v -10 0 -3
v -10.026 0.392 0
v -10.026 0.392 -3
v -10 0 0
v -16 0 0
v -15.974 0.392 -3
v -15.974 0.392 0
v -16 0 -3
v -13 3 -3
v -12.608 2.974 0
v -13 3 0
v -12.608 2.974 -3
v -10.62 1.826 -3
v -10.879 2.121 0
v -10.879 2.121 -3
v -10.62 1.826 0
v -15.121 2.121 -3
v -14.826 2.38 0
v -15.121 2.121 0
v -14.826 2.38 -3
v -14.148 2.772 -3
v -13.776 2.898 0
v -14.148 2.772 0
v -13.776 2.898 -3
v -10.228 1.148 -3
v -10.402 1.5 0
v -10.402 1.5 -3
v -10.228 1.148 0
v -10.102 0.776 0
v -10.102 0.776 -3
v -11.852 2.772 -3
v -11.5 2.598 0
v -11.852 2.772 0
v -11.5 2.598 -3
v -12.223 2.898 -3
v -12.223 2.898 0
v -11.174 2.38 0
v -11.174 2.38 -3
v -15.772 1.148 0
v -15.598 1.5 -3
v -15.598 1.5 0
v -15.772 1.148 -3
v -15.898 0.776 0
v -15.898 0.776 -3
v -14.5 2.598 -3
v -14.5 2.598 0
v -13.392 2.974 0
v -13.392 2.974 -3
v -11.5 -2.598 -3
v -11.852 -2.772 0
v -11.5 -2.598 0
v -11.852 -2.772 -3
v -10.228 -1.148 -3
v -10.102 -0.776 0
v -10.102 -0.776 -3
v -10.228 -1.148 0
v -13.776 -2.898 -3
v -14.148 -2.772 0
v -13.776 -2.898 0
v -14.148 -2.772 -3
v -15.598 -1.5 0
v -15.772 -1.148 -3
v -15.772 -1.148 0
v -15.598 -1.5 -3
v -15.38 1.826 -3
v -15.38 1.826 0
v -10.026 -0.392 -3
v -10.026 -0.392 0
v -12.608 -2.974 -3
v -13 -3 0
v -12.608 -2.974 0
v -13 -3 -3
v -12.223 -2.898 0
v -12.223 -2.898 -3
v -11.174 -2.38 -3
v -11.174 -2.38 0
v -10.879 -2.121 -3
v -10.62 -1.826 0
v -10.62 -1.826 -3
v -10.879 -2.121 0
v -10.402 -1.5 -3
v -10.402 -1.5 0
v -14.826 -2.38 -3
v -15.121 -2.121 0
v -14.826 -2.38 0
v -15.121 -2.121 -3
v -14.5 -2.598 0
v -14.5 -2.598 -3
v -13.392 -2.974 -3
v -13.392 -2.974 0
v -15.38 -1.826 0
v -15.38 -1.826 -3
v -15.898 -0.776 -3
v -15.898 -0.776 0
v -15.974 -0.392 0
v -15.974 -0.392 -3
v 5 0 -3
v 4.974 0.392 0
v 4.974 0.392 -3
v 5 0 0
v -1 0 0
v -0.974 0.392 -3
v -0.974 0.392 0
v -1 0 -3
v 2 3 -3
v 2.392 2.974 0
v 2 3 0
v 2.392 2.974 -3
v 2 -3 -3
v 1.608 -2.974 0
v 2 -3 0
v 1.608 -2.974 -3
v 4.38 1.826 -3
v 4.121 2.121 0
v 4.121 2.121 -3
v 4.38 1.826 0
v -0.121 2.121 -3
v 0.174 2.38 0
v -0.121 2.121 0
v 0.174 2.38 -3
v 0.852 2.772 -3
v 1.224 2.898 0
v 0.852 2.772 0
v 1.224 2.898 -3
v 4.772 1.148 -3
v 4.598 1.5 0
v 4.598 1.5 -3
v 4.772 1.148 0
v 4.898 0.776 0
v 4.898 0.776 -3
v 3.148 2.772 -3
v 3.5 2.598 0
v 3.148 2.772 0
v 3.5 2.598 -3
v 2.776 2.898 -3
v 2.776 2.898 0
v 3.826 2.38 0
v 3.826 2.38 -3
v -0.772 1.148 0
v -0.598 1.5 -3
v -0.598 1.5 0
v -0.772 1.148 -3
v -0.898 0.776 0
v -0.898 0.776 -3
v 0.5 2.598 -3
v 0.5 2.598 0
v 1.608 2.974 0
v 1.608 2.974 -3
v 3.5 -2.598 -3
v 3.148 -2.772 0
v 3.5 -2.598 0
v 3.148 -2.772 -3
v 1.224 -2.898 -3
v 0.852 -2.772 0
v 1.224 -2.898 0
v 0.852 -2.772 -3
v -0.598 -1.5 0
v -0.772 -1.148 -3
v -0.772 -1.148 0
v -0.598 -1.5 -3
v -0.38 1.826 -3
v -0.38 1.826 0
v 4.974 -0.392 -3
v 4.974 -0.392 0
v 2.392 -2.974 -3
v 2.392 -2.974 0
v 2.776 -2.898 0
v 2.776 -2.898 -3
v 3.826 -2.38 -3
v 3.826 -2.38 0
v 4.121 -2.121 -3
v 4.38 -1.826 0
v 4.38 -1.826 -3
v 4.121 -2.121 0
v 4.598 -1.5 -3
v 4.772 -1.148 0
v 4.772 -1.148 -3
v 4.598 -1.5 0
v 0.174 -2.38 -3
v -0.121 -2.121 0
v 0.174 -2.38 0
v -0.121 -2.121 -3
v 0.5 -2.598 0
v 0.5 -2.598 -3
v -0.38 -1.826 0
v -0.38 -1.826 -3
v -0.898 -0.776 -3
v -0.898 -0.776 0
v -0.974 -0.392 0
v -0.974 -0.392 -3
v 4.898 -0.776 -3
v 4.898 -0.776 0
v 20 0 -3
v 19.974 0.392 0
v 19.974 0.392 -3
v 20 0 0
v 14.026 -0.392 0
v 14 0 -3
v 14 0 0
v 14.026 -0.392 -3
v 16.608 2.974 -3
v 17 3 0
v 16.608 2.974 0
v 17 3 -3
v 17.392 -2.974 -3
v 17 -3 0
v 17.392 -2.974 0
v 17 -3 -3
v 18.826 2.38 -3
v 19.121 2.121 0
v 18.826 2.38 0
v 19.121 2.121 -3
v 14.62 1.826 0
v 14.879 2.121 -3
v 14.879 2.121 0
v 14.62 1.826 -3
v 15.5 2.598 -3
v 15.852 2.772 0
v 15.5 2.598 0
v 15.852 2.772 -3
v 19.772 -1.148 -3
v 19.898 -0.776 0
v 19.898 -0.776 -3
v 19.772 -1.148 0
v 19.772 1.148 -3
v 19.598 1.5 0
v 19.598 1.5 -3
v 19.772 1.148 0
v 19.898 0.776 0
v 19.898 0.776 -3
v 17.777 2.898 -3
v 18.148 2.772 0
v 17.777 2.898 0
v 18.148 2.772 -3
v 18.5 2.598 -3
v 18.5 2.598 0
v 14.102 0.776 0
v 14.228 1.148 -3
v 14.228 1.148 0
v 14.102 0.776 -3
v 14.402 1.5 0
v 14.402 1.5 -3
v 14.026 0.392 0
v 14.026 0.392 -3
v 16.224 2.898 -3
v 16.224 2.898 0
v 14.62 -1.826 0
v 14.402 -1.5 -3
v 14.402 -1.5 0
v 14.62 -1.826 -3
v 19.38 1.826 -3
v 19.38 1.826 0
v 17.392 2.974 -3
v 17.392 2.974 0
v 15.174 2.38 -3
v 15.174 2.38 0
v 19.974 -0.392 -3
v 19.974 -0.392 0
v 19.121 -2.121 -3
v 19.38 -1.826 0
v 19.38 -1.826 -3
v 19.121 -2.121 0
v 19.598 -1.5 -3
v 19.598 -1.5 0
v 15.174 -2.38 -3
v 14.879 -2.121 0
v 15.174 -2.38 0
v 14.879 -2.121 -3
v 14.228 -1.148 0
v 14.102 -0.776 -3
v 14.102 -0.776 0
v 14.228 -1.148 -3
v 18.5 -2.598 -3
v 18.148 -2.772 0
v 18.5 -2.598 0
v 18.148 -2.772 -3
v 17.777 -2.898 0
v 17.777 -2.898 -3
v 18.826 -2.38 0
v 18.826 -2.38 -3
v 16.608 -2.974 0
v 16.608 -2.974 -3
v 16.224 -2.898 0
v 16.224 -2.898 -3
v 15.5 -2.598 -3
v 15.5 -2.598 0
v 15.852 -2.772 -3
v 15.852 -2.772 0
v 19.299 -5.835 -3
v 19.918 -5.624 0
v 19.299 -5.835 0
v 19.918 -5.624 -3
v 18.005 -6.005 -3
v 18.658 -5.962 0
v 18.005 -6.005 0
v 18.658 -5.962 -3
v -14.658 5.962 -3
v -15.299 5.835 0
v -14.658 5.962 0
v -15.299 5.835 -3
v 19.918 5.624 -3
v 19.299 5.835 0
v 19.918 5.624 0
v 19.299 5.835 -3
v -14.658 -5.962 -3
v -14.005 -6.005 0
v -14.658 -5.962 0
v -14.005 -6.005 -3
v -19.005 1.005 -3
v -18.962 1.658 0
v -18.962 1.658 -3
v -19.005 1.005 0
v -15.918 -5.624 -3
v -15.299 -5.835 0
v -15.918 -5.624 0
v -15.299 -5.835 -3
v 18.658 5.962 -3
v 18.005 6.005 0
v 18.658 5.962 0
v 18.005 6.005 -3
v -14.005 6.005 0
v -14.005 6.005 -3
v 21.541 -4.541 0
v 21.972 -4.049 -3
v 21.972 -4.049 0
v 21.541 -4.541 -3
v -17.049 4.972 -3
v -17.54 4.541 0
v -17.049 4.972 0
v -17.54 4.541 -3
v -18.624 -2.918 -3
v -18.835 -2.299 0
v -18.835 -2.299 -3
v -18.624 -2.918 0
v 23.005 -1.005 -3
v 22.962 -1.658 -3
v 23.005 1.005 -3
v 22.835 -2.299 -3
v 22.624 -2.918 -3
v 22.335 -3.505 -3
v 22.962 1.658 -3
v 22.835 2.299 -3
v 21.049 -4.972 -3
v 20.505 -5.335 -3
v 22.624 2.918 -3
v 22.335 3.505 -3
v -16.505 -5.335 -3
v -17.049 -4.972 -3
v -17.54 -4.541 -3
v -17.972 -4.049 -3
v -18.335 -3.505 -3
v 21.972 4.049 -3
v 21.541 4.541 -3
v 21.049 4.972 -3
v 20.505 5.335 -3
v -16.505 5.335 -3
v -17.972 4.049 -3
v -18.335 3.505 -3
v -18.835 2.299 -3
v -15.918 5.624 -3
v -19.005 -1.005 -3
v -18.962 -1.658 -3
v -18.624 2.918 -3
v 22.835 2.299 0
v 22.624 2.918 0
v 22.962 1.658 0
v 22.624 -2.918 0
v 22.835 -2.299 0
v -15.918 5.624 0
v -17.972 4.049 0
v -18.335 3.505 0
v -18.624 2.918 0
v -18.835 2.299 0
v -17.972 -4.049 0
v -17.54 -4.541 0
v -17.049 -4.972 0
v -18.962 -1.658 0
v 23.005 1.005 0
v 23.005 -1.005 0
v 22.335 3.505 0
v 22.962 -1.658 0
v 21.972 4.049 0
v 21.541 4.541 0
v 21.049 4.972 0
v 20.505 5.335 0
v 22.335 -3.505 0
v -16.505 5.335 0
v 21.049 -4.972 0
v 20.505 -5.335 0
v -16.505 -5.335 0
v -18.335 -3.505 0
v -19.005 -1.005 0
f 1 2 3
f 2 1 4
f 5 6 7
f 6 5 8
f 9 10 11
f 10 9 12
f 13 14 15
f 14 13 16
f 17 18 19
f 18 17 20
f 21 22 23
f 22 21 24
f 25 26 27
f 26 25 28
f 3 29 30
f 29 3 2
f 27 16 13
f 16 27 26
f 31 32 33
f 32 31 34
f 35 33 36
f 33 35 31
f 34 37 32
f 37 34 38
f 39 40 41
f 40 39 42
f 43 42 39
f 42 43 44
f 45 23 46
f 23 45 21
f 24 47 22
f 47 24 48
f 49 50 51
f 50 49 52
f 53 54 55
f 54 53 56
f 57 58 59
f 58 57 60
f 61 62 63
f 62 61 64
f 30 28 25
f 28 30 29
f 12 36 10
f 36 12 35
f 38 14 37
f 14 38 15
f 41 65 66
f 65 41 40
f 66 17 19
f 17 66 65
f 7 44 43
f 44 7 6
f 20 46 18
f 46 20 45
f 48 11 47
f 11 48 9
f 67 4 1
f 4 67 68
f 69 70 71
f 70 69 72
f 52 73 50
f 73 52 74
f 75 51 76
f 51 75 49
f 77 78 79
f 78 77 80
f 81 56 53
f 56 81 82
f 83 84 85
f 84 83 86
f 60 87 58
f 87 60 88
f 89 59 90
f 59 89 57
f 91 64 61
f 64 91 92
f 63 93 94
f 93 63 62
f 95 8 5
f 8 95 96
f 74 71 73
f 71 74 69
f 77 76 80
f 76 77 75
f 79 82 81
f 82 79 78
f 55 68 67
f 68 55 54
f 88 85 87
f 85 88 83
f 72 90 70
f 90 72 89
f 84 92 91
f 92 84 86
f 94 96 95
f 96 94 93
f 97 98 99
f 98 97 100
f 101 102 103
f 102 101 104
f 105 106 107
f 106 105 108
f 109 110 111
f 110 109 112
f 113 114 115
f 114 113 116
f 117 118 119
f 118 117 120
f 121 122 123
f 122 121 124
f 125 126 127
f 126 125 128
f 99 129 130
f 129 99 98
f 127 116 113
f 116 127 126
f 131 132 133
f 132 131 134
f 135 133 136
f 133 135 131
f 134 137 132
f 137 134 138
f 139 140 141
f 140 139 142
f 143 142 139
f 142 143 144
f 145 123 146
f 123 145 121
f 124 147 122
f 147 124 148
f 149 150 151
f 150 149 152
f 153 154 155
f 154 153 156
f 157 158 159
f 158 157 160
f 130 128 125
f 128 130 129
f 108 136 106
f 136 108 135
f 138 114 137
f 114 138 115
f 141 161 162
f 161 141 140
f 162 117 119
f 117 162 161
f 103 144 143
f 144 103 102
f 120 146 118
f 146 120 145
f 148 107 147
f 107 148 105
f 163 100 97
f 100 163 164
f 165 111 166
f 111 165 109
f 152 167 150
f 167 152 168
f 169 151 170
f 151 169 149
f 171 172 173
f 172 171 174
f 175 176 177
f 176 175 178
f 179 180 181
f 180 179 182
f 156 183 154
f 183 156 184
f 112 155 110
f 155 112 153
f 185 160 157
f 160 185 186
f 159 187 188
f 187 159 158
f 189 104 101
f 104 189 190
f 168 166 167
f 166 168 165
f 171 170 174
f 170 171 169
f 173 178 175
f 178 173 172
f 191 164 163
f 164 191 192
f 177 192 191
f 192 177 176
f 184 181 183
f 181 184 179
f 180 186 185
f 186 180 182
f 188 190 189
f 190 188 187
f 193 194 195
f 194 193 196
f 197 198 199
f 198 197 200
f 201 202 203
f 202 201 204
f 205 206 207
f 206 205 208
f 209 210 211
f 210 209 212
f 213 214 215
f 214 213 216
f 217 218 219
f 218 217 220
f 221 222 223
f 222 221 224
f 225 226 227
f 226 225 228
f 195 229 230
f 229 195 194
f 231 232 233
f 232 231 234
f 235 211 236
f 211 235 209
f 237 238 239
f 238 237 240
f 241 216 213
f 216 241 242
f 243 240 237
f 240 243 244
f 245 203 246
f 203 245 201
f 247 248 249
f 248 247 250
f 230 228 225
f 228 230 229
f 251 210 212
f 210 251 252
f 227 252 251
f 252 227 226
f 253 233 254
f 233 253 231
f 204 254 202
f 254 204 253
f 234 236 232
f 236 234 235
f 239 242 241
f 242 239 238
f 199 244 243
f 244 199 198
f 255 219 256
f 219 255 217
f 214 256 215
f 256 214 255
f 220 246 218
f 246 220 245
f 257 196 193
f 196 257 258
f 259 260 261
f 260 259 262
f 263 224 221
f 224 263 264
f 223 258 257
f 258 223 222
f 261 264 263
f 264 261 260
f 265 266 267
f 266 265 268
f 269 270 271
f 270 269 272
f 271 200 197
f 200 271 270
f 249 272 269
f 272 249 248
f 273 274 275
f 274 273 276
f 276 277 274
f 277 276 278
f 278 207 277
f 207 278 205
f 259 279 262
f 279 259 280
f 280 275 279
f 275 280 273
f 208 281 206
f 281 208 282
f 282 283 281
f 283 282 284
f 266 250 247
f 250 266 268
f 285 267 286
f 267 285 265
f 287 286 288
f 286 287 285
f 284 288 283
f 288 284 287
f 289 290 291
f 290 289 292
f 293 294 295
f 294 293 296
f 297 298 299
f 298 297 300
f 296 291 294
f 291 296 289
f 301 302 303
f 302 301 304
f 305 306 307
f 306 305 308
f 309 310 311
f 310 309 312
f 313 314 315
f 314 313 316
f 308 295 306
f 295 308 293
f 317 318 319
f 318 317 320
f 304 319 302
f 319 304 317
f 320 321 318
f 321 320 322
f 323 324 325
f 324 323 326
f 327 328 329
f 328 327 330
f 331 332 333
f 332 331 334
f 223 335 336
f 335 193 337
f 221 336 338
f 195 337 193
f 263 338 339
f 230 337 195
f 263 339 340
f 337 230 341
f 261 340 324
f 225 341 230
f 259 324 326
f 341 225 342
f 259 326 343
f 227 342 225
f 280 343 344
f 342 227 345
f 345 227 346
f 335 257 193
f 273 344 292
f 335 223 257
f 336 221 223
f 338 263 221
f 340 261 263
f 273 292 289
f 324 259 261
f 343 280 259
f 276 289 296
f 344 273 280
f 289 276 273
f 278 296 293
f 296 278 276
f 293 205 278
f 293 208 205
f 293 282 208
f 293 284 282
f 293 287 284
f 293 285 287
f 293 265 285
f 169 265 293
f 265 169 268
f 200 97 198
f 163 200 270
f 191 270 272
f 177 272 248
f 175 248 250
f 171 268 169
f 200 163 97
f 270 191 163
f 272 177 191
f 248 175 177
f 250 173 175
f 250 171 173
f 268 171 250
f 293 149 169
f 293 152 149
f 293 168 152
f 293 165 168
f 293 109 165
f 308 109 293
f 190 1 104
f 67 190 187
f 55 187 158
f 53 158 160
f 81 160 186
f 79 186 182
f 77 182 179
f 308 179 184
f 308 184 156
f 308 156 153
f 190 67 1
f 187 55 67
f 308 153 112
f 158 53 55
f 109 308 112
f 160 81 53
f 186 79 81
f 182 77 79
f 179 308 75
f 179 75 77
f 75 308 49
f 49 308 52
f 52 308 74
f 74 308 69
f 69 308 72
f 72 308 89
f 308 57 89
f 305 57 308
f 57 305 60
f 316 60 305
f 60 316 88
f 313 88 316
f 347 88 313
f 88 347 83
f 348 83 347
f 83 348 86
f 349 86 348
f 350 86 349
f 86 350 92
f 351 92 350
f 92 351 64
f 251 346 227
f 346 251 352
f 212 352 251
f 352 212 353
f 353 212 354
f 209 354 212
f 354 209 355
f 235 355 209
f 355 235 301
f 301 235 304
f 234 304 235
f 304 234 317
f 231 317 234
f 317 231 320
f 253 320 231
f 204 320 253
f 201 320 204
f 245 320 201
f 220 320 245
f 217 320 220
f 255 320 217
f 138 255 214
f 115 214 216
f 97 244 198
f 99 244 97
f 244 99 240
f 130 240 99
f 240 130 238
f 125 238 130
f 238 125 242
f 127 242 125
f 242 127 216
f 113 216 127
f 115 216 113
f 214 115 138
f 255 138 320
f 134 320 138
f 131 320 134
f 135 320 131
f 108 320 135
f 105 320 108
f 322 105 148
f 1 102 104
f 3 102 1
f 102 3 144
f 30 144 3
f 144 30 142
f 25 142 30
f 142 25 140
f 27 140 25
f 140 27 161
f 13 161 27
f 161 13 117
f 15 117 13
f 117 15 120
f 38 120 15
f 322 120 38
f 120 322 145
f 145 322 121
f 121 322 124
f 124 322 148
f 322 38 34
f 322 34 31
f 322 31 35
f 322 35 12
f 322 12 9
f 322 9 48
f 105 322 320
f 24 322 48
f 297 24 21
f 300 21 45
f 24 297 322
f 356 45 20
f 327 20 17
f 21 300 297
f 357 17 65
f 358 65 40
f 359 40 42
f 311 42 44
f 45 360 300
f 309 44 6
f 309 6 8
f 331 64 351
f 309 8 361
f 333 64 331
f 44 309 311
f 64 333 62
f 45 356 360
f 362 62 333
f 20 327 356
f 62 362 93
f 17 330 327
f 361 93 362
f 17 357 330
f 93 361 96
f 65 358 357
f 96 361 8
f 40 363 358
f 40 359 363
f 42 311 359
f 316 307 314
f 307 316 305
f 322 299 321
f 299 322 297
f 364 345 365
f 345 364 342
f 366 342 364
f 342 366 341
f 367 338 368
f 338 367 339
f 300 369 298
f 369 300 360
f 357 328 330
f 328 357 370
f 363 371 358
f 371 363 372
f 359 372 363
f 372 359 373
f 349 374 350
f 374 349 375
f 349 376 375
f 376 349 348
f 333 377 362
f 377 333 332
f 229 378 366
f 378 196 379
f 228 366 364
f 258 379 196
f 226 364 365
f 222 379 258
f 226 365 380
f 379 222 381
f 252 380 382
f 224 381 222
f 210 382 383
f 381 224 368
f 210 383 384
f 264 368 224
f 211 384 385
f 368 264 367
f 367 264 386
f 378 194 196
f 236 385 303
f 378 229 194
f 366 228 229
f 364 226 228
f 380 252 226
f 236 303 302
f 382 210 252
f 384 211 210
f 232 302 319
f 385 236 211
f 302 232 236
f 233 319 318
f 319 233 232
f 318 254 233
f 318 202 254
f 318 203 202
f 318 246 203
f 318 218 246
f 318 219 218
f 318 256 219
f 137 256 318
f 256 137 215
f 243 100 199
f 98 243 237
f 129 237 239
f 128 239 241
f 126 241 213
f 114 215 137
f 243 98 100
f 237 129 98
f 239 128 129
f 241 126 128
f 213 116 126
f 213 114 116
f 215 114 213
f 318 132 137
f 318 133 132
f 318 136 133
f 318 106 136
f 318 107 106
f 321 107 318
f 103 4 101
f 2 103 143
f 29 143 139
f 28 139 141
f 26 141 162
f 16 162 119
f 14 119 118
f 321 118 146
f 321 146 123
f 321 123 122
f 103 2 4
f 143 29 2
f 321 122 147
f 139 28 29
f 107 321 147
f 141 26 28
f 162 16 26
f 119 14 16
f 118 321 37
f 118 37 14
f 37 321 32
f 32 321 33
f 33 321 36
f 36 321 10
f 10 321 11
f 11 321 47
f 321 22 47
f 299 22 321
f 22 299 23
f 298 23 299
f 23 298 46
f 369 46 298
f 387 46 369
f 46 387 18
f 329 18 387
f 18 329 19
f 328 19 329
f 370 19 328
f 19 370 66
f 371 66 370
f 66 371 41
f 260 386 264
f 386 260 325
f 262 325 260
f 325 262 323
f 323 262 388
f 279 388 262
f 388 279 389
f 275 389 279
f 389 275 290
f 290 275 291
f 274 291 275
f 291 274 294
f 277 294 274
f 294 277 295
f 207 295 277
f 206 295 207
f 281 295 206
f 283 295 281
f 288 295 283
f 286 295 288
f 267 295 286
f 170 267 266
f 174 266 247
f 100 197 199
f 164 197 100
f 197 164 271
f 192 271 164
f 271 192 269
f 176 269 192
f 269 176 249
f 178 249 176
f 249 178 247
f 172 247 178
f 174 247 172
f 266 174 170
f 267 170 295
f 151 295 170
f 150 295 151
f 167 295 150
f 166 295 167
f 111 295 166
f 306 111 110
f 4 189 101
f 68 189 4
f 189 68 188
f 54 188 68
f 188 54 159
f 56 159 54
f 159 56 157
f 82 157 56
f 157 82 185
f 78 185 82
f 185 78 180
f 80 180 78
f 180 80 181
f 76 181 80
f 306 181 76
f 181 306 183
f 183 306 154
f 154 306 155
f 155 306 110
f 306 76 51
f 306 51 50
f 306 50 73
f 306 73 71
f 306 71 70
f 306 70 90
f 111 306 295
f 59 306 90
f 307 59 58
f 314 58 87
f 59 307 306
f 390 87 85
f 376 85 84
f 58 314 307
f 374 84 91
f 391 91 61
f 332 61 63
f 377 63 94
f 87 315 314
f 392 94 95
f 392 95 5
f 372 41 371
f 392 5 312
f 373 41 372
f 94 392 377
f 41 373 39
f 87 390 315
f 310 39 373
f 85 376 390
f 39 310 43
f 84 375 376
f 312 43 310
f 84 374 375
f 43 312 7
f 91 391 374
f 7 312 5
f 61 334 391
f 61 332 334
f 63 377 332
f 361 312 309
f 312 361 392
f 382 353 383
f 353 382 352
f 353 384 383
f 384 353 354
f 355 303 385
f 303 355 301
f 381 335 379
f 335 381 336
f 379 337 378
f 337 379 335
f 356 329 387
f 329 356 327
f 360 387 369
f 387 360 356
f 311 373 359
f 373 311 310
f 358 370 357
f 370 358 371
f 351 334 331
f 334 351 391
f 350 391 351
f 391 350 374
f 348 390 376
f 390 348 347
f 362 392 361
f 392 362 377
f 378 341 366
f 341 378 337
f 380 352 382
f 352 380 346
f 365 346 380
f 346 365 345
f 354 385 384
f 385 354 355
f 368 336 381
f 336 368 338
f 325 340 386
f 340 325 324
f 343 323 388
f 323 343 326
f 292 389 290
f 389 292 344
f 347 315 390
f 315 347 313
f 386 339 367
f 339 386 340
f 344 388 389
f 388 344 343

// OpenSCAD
// Generated by SolidPython 1.1.3 on 2022-09-15 16:37:09
$fn = 48;


difference() {
	union() {
		translate(v = [2, 0, 0]) {
			difference() {
				union() {
					color(alpha = 1.0000000000, c = "Gold") {
						translate(v = [0, 0, 0]) {
							rotate(a = [0, 0, 0]) {
								translate(v = [0, 0, -3]) {
									linear_extrude(height = 3) {
										offset(r = 5) {
											square(center = true, size = [32.0100000000, 2.0100000000]);
										}
									}
								}
							}
						}
					}
				}
				union() {
					color(alpha = 1.0000000000, c = "Gold") {
						translate(v = [-15.0000000000, 0.0000000000, 0]) {
							rotate(a = [0, 0, 0]) {
								translate(v = [0, 0, -250]) {
									cylinder(h = 500, r = 3.0000000000);
								}
							}
						}
					}
					color(alpha = 1.0000000000, c = "Gold") {
						translate(v = [0.0000000000, 0.0000000000, 0]) {
							rotate(a = [0, 0, 0]) {
								translate(v = [0, 0, -250]) {
									cylinder(h = 500, r = 3.0000000000);
								}
							}
						}
					}
					color(alpha = 1.0000000000, c = "Gold") {
						translate(v = [15.0000000000, 0.0000000000, 0]) {
							rotate(a = [0, 0, 0]) {
								translate(v = [0, 0, -250]) {
									cylinder(h = 500, r = 3.0000000000);
								}
							}
						}
					}
				}
			}
		}
	}
	union();
}
/***********************************************
*********      SolidPython code:      **********
************************************************
 
import subprocess

from solid.objects import *
from solid import scad_render_to_file, scad_render

import math

import os

##################################################################################################################################################
##################################################################################################################################################
##################################################################################################################################################
##################################################################################################################################################
######  DIMENSION STUFF
##################################################################################################################################################
##################################################################################################################################################
##################################################################################################################################################
##################################################################################################################################################


mode = "3DPR"
#mode = "LAZE"
#mode = "TURE"
#mode = ""


######  Countersunk
countersunkM = []
WIDTH = 0
DEPTH = 1
countersunkM1width = 0; countersunkM1depth = 0; countersunkM2width = 0; countersunkM2depth = 0
countersunkM3width = 0
countersunkM3depth = 0
countersunkM4width = 0
countersunkM4depth = 0
countersunkM5width = 0
countersunkM5depth = 0
countersunkM6width = 0
countersunkM6depth = 0

######  Holes
holeM = []
holeM1 = 0
holeM2 = 0
holeM3 = 0
holeM4 = 0
holeM5 = 0
holeM6 = 0

######  Nuts
nutM = []
NUTWIDTH = 0
NUTDEPTH = 1
nutM1width = 0
nutM1depth = 0
nutM2width = 0
nutM2depth = 0
nutM3width = 0
nutM3depth = 0
nutM4width = 0
nutM4depth = 0
nutM5width = 0
nutM5depth = 0
nutM6width = 0
nutM6depth = 0

######  OOEB
ooebPinWidth = 0
ooebPinWidthWide = 0


######  Colors
colDefault = "Gold"

colOOEBbase = colDefault

colLEDRed = "red"
colWire = "gray"
    ######  Resistor
colRes = list()
colResistor = "beige"

colResBlack = "black"
colRes.append(colResBlack)
colResBrown = "brown"
colRes.append(colResBrown)
colResRed = "red"
colRes.append(colResRed)
colResOrange = "orange"
colRes.append(colResOrange)
colResYellow = "yellow"
colRes.append(colResYellow)
colResGreen = "green"
colRes.append(colResGreen)
colResBlue = "blue"
colRes.append(colResBlue)
colResPurple = "purple"
colRes.append(colResPurple)
colResGray = "gray"
colRes.append(colResGray)
colResWhite = "white"
colRes.append(colResWhite)





def changeMode(m="3DPR"):
    #print("####################################################      CHANGING MODES TO: " + m)
    global mode
    mode = m
    ######  Countersunk
    global countersunkM, countersunkM1width, countersunkM1depth, countersunkM2width, countersunkM2depth, countersunkM3width, countersunkM3depth, countersunkM4width, countersunkM4depth, countersunkM5width, countersunkM5depth, countersunkM6width, countersunkM6depth
    countersunkM = []
    countersunkM.append([0,0])
    countersunkM1width = 0 if mode== "3DPR" else 0
    countersunkM1depth = 0 if mode== "3DPR" else 0
    countersunkM.append([countersunkM1width,countersunkM1depth])
    countersunkM2width = 0 if mode== "3DPR" else 0
    countersunkM2depth = 0 if mode== "3DPR" else 0
    countersunkM.append([countersunkM2width,countersunkM2depth])
    countersunkM3width = 5.5/2+0.6 if mode== "3DPR" else 5.5/2
    countersunkM3depth = 1.7 if mode== "3DPR" else 1.7
    countersunkM.append([countersunkM3width,countersunkM3depth])
    countersunkM4width = 0 if mode== "3DPR" else 0
    countersunkM4depth = 0 if mode== "3DPR" else 0
    countersunkM.append([countersunkM4width,countersunkM4depth])
    countersunkM5width = 0 if mode== "3DPR" else 0
    countersunkM5depth = 0 if mode== "3DPR" else 0
    countersunkM.append([countersunkM5width,countersunkM5depth])
    countersunkM6width = 0 if mode== "3DPR" else 0
    countersunkM6depth = 0 if mode== "3DPR" else 0
    countersunkM.append([countersunkM6width,countersunkM6depth])
    ######  Holes
    global holeM, holeM1, holeM2, holeM3, holeM4, holeM5, holeM6, holeM7, holeM8
    holeM = []
    holeM1 = 1.2/2 if mode== "3DPR" else 1/2
    holeM2 = 2.3/2 if mode== "3DPR" else 2/2
    holeM3 = 3.4/2 if mode== "3DPR" else 3/2
    holeM4 = 4.4/2 if mode== "3DPR" else 4/2
    holeM5 = 5.4/2 if mode== "3DPR" else 5/2
    holeM6 = 6.5/2 if mode== "3DPR" else 6/2
    holeM7 = 7.5/2 if mode== "3DPR" else 7/2
    holeM8 = 8.6/2 if mode== "3DPR" else 8/2
    holeM.append(0)
    holeM.append(holeM1)
    holeM.append(holeM2)
    holeM.append(holeM3)
    holeM.append(holeM4)
    holeM.append(holeM5)
    holeM.append(holeM6)
    holeM.append(holeM7)
    holeM.append(holeM8)
    #####  Nuts
    global nutM, nutM1width, nutM1depth, nutM2width, nutM2depth, nutM3width, nutM3depth, nutM4width, nutM4depth, nutM5width, nutM5depth, nutM6width, nutM6depth
    nutM = []
    nutM.append([0,0]) 
    #M1 Nut
    nutM1width = 0
    nutM1depth = 0
    nutM.append([nutM1width,nutM1depth])    
    #M2 Nut
    nutM2width = 0
    nutM2depth = 0
    nutM.append([nutM2width,nutM2depth])    
    #M3 Nut
    #nutM3width = 6.05 if mode== "3DPR" else 5.5
    nutM3width = 6.05 * 1.154 if mode== "3DPR" else 5.5 * 1.154
    nutM3depth = 2.5 if mode== "3DPR" else 2.5
    nutM.append([nutM3width,nutM3depth])    
    #M4 Nut
    nutM4width = 0
    nutM4depth = 0
    nutM.append([nutM4width,nutM4depth])    
    #M5 Nut
    nutM5width = 0
    nutM5depth = 0
    nutM.append([nutM5width,nutM5depth])    
    #M6 Nut
    nutM6width = 11 if mode== "3DPR" else 10
    nutM6depth = 5 if mode== "3DPR" else 5
    nutM.append([nutM6width,nutM6depth])    

    ######  OOEB
    global ooebPinWidth,  ooebPinWidthWide

    ooebPinWidth = 0.6
    if(mode=="3DPR" or mode=="LAZE"):
        ooebPinWidth = 0.6 + 0.6
    ooebPinWidthWide = 1.2
    if(mode=="3DPR" or mode=="LAZE"):
        ooebPinWidthWide = 1.2 + 0.6


changeMode()


""""    
holeM12D = s=="3DPR" ? 1.4/2 : 1.2/2;
holeM16D = s=="3DPR" ? 1.8/2 : 1.6/2;
holeM2 = s=="3DPR" ? 2.3/2 : 2/2;
holeM25D = s=="3DPR" ? 2.8/2 : 2.5/2;
holeM27D = s=="3DPR" ? 3.1/2 : 2.7/2;    
holeM3 = s=="3DPR" ? 3.4/2 : 3/2;
holeM35D = s=="3DPR" ? 3.9/2 : 35/2;
holeM4 = s=="3DPR" ? 4.4/2 : 4/2;
holeM5 = s=="3DPR" ? 5.4/2 : 5/2;
holeM6 = s=="3DPR" ? 6.5/2 : 6/2;
holeM6Minus = s=="3DPR" ? 5.8/2 : 5.9/2;
holeM7 = s=="3DPR" ? 7.5/2 : 7/2;
holeM8 = s=="3DPR" ? 8.6/2 : 8/2;
holeM9 = s=="3DPR" ? 9.6/2 : 9/2;
holeM10 = s=="3DPR" ? 10.6/2 : 10/2;
holeM11 = s=="3DPR" ? 11.6/2 : 11/2;
holeM12 = s=="3DPR" ? 12.6/2 : 12/2;
holeM13 = s=="3DPR" ? 13.6/2 : 13/2;
holeM14 = s=="3DPR" ? 14.6/2 : 14/2;
holeM15 = s=="3DPR" ? 15.6/2 : 15/2;
holeM16 = s=="3DPR" ? 16.6/2 : 16/2;
holeM17 = s=="3DPR" ? 17.6/2 : 17/2;
holeM18 = s=="3DPR" ? 18.6/2 : 18/2;
holeM19 = s=="3DPR" ? 19.6/2 : 19/2;
holeM20 = s=="3DPR" ? 20.6/2 : 20/2;
"""

##################################################################################################################################################
##################################################################################################################################################
##################################################################################################################################################
##################################################################################################################################################
######  REGULAR STUFF
##################################################################################################################################################
##################################################################################################################################################
##################################################################################################################################################
##################################################################################################################################################


def setMode(mode="3DPR"):
    changeMode(mode)

def getMode():
    return mode



def saveToScad(fileName, parts):
    dir =  os.path.dirname(os.path.abspath(fileName))
    Path(dir).mkdir(parents=True, exist_ok=True)
    file_out = scad_render_to_file(parts, fileName, file_header=f'$fn = 48;')


def saveToDxf(fileIn, fileOut=""):
    if fileOut == "":
        fileOut = fileIn.replace(".scad",".dxf")
    saveToFile(fileIn, fileOut)
    
def saveToPng(fileIn, fileOut="",extra="--render"):
    if fileOut == "":
        fileOut = fileIn.replace(".scad",".png")
    saveToFile(fileIn, fileOut)

def saveToStl(fileIn, fileOut=""):
    if fileOut == "":
        fileOut = fileIn.replace(".scad",".stl")
    saveToFile(fileIn, fileOut)
    
def saveToSvg(fileIn, fileOut=""):
    if fileOut == "":
        fileOut = fileIn.replace(".scad",".svg")
    saveToFile(fileIn, fileOut)

def saveToFile(fileIn, fileOut,extra=""):
    extra = extra + " --colorscheme Tomorrow"

    launchStr = 'openscad -o "' + fileOut + '"' + extra + ' "' + fileIn + '"'
    if ".png" in fileOut:
        launchStr = launchStr + " --render"
    print("            saveToFile launch string: " + launchStr)
    subprocess.run(launchStr)
    x=0



def insert(item,pos=[None,None,None],x=0,y=0,z=0,ex=0,size=[None,None,None],length=0,rot=[None,None,None],rotX=0,rotY=0,rotZ=0,width=0,height=0,depth=100,rad=0,rad2=0,color=colDefault,alpha=1,OOwidth=0,OOheight=0,holes=True,negative=True, name="",m=""):
    return OPSCInsert(item,pos,x,y,z,ex,size,length,rot,rotX,rotY,rotZ,width,height,depth,rad,rad2,color,alpha,OOwidth,OOheight,holes,negative,name,m=m)


def OPSCInsert(item,pos=[None,None,None],x=0,y=0,z=0,ex=0,size=[None,None,None],length=0,rot=[None,None,None],rotX=0,rotY=0,rotZ=0,width=0,height=0,depth=100,rad=0,rad2=0,col=colDefault,alpha=1,OOwidth=0,OOheight=0,holes=True,negative=True, name="",m=""):
    
    """
        color(color,alpha){
            translate([x,y,z]){
                    rotate([rotX,rotY,rotZ]){
    """
    returnValue = ""

    #print(pos)

    if pos[0] != None:
        x=pos[0]
        y=pos[1]
        z=pos[2]
    if rot[0] != None:
        rotX=rot[0]
        rotY=rot[1]
        rotZ=rot[2]
    
    returnValue = color(col)(translate((x,y,z))(
                            rotate((rotX,rotY,rotZ))(
                                OPSCInsertIf(item,pos,x,y,z,ex,size,length,rot,rotX,rotY,rotZ,width,height,depth,rad,rad2,col,alpha,OOwidth,OOheight,holes,negative,name,m=m)
                            )
                        ))
                
    

    return returnValue

def OPSCInsertIf(item,pos=[None,None,None],x=0,y=0,z=0,ex=0,size=[None,None,None],length=0,rot=[None,None,None],rotX=0,rotY=0,rotZ=0,width=0,height=0,depth=100,rad=0,rad2=0,color=colDefault,alpha=1,OOwidth=0,OOheight=0,holes=True,negative=True, name="",m=""):
    returnValue = cube([10,10,10])

    if size[0] != None:
        width=size[0]
        height=size[1]
        depth=size[2]

    #print("    OPSCInsert item:" + str(item) + " at:[" + str(x) + "," + str(y) + "," + str(z) + "] size: [" + str(width) + "," + str(height) + "," + str(depth) + "]")

    if(item=="cube"):
        returnValue =  translate([0,0,-depth/2])(cube([width,height,depth],center=True).set_modifier(m))
    elif(item=="cylinder"):        
        returnValue = translate([0,0,-depth/2])(cylinder(r=rad,h=depth,center=True).set_modifier(m))
    elif(item=="sphere"):        
        returnValue = translate([0,0,-rad])(sphere(r=rad).set_modifier(m))
    elif(item=="plane"):
        if depth == 100:
            returnValue = insert("cube",size=[1000,1000,0.1],color=color).set_modifier(m)            
        else:
            returnValue = insert("cube",size=[1000,1000,depth],color=color).set_modifier(m)                        
    elif(item=="cubeRounded"):
        if(rad == 0):
                            rad = 5
        returnValue =  translate([0,0,-depth])(
                        linear_extrude(height=depth)(                        
                            offset(r=rad)(
                                square((width-rad*2+.01,height-rad*2+.01),center=True).set_modifier(m)
                                )
                            )
        )
    ######  Countersunk
    elif(item == "countersunkM1" or item == "csM1" ):
        returnValue = OSPCgetCountersunk(rad=1,m=m)
    elif(item == "countersunkM2" or item == "csM2" ):
        returnValue = OSPCgetCountersunk(rad=2,m=m)
    elif(item == "countersunkM3" or item == "csM3" ):
        returnValue = OSPCgetCountersunk(rad=3,m=m)
    elif(item == "countersunkM4" or item == "csM4" ):
        returnValue = OSPCgetCountersunk(rad=4,m=m)
    elif(item == "countersunkM5" or item == "csM5" ):
        returnValue = OSPCgetCountersunk(rad=5,m=m)
    elif(item == "countersunkM6" or item == "csM6" ):
        returnValue = OSPCgetCountersunk(rad=6,m=m)
    elif(item == "countersunk" or item == "cs"):
        returnValue = OSPCgetCountersunk(rad=rad,m=m)


    ######  Holes    
    elif(item == "holeM1"):
        returnValue = OSPCgetHole(rad=1,m=m)
    elif(item == "holeM2"):
        returnValue = OSPCgetHole(rad=2,m=m)
    elif(item == "holeM3"):
        returnValue = OSPCgetHole(rad=3,m=m)
    elif(item == "holeM4"):
        returnValue = OSPCgetHole(rad=4,m=m)
    elif(item == "holeM5"):
        returnValue = OSPCgetHole(rad=5,m=m)
    elif(item == "holeM6"):
        returnValue = OSPCgetHole(rad=6,m=m)
    elif(item == "holeM7"):
        returnValue = OSPCgetHole(rad=7,m=m)
    elif(item == "holeM8"):
        returnValue = OSPCgetHole(rad=8,m=m)
    elif(item == "hole"):
        returnValue = OSPCgetHole(rad=rad,m=m)

    ######  Nuts
    elif(item == "nutM1"):
        returnValue = OSPCgetNut(rad=1,depth=depth,m=m)
    elif(item == "nutM2"):
        returnValue = OSPCgetNut(rad=2,depth=depth,m=m)
    elif(item == "nutM3"):
        returnValue = OSPCgetNut(rad=3,depth=depth,m=m)
    elif(item == "nutM4"):
        returnValue = OSPCgetNut(rad=4,depth=depth,m=m)
    elif(item == "nutM5"):
        returnValue = OSPCgetNut(rad=5,depth=depth,m=m)
    elif(item == "nutM6"):
        returnValue = OSPCgetNut(rad=6,depth=depth,m=m)
    elif(item == "nut"):
        returnValue = OSPCgetNut(rad=rad,depth=depth,m=m)
    return returnValue

                

def OSPCgetHole(rad,m=""):
    return translate([0,0,-250])(cylinder(r=holeM[rad],h=500).set_modifier(m))

def OSPCgetNut(rad,depth,m=""):
    depth = nutM[rad][NUTDEPTH] if depth==100 else depth
    returnValue = OPSChexagon(nutM[rad][NUTWIDTH],depth=depth,m=m)
    return returnValue

def OSPCgetCountersunk(rad,m=""):
    depth=countersunkM[rad][DEPTH]
    returnValue = translate([0,0,-depth])(cylinder(h=depth,r2=countersunkM[rad][WIDTH],r1=holeM[rad])).set_modifier(m)
    return returnValue

def OPSChexagon(width,depth,m=""):
    angles = []
    for a in range(0,6):
        angles.append((a*360/6)+30)
    points = []
    for angle in angles:
        x = math.cos((math.pi/180)*angle)*(width/2)
        y = math.sin((math.pi/180)*angle)*(width/2)
        points.append([x,y])

        rv = polygon(points)
        rv = linear_extrude(height=depth)(rv)
        rv = translate([0,0,-depth])(rv)
        rv = rv.set_modifier(m)

    return rv

def OPSChexagonOld(width,depth,m=""):
    cutter = item()
    wid=width*2
    cutter.addPos(insert("cube",pos=[wid/2+width/2,0,0],size=[wid,wid,depth]))
    cutter.addPos(insert("cube",pos=[-wid/2-width/2,0,0],size=[wid,wid,depth]))

    cut = cutter.getPart()
    #print(depth)
    returnValue = difference()(
        translate([0,0,-depth/2])(cube([wid,wid,depth],center=True)),
        cut,
        rotate([0,0,60])(cut),
        rotate([0,0,-60])(cut)
    ).set_modifier(m)

    return returnValue

class item:

    def __init__(self):
        self.posItems=list()
        self.negItems=list()

    def isEmpty(self):        
        testString = scad_render(self.getPart())
        #print("test String length: " + str(len(testString)))
        returnValue = False
        if len(testString) == 270:            
            returnValue = True
        return returnValue

    def addPos(self,part):
        self.posItems.append(part)
    def addNeg(self,part):
        self.negItems.append(part)

    def getPart(self):
        returnValue = difference()(
            union()(self.posItems),
            union()(self.negItems)
        )
        return returnValue

    def getLaser(self,start=0,layers=1,thickness=-3,tileDif=200):
        rv= []

        for x in range(layers):
            rv.append(translate([0,x*tileDif,0])(
                    projection()(
                        intersection()(
                            insert("plane",z=start+x*thickness),
                            self.getPart()
                        )
                    )
            )
            )
        return union()(rv)

    def getSplit(self,start=0,depth=6,tileDif=200):
        rv= []

        rv.append(translate([0,0,0])(
            intersection()(
                insert("cube",size=[100,100,depth],z=start),
                self.getPart()
            )
        )
        )

        rv.append(translate([0,0,depth])(rotate([180,0,0])(translate([0,tileDif,depth])(
            intersection()(
                insert("cube",size=[100,100,depth],z=start-depth),
                self.getPart()
            )
        )
        )
        )
        )        
        return union()(rv)


 
 
************************************************/
